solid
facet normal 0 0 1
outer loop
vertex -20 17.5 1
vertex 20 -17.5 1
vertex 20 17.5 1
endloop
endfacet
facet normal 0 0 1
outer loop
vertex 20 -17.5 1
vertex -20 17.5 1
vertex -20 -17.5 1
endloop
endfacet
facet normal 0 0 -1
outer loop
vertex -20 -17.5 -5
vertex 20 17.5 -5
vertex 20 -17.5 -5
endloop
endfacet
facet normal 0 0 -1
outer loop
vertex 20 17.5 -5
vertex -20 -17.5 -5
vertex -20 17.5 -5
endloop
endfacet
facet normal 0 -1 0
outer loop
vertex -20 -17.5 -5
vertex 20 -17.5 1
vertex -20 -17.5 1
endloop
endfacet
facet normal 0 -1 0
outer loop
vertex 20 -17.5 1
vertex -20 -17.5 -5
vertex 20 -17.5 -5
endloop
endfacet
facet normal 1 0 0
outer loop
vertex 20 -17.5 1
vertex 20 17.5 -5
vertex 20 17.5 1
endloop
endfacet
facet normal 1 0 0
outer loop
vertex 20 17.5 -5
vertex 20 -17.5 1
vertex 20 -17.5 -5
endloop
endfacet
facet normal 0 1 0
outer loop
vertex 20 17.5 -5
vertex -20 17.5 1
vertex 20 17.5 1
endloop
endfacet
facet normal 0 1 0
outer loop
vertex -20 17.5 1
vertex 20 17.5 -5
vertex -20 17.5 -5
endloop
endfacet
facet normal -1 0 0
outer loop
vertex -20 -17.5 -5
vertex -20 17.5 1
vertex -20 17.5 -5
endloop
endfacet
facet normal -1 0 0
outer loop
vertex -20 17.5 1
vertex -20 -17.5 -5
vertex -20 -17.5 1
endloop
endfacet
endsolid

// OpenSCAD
// Define dimensions for the rectangular block
length = 40;  // Adjusted length to create a more balanced proportion
width = 35;   // Adjusted width to create a more balanced proportion
thickness = 6; // Increased thickness to match the original model

// Adjusted position offset to align with the original model
x_offset = 0;  // X-axis offset
y_offset = 0;  // Y-axis offset
z_offset = -2; // Z-axis offset

// Create the rectangular block
module rectangular_block() {
    translate([x_offset, y_offset, z_offset]) {
        cube([length, width, thickness], center = true);
    }
}

// Render the model
rectangular_block();
